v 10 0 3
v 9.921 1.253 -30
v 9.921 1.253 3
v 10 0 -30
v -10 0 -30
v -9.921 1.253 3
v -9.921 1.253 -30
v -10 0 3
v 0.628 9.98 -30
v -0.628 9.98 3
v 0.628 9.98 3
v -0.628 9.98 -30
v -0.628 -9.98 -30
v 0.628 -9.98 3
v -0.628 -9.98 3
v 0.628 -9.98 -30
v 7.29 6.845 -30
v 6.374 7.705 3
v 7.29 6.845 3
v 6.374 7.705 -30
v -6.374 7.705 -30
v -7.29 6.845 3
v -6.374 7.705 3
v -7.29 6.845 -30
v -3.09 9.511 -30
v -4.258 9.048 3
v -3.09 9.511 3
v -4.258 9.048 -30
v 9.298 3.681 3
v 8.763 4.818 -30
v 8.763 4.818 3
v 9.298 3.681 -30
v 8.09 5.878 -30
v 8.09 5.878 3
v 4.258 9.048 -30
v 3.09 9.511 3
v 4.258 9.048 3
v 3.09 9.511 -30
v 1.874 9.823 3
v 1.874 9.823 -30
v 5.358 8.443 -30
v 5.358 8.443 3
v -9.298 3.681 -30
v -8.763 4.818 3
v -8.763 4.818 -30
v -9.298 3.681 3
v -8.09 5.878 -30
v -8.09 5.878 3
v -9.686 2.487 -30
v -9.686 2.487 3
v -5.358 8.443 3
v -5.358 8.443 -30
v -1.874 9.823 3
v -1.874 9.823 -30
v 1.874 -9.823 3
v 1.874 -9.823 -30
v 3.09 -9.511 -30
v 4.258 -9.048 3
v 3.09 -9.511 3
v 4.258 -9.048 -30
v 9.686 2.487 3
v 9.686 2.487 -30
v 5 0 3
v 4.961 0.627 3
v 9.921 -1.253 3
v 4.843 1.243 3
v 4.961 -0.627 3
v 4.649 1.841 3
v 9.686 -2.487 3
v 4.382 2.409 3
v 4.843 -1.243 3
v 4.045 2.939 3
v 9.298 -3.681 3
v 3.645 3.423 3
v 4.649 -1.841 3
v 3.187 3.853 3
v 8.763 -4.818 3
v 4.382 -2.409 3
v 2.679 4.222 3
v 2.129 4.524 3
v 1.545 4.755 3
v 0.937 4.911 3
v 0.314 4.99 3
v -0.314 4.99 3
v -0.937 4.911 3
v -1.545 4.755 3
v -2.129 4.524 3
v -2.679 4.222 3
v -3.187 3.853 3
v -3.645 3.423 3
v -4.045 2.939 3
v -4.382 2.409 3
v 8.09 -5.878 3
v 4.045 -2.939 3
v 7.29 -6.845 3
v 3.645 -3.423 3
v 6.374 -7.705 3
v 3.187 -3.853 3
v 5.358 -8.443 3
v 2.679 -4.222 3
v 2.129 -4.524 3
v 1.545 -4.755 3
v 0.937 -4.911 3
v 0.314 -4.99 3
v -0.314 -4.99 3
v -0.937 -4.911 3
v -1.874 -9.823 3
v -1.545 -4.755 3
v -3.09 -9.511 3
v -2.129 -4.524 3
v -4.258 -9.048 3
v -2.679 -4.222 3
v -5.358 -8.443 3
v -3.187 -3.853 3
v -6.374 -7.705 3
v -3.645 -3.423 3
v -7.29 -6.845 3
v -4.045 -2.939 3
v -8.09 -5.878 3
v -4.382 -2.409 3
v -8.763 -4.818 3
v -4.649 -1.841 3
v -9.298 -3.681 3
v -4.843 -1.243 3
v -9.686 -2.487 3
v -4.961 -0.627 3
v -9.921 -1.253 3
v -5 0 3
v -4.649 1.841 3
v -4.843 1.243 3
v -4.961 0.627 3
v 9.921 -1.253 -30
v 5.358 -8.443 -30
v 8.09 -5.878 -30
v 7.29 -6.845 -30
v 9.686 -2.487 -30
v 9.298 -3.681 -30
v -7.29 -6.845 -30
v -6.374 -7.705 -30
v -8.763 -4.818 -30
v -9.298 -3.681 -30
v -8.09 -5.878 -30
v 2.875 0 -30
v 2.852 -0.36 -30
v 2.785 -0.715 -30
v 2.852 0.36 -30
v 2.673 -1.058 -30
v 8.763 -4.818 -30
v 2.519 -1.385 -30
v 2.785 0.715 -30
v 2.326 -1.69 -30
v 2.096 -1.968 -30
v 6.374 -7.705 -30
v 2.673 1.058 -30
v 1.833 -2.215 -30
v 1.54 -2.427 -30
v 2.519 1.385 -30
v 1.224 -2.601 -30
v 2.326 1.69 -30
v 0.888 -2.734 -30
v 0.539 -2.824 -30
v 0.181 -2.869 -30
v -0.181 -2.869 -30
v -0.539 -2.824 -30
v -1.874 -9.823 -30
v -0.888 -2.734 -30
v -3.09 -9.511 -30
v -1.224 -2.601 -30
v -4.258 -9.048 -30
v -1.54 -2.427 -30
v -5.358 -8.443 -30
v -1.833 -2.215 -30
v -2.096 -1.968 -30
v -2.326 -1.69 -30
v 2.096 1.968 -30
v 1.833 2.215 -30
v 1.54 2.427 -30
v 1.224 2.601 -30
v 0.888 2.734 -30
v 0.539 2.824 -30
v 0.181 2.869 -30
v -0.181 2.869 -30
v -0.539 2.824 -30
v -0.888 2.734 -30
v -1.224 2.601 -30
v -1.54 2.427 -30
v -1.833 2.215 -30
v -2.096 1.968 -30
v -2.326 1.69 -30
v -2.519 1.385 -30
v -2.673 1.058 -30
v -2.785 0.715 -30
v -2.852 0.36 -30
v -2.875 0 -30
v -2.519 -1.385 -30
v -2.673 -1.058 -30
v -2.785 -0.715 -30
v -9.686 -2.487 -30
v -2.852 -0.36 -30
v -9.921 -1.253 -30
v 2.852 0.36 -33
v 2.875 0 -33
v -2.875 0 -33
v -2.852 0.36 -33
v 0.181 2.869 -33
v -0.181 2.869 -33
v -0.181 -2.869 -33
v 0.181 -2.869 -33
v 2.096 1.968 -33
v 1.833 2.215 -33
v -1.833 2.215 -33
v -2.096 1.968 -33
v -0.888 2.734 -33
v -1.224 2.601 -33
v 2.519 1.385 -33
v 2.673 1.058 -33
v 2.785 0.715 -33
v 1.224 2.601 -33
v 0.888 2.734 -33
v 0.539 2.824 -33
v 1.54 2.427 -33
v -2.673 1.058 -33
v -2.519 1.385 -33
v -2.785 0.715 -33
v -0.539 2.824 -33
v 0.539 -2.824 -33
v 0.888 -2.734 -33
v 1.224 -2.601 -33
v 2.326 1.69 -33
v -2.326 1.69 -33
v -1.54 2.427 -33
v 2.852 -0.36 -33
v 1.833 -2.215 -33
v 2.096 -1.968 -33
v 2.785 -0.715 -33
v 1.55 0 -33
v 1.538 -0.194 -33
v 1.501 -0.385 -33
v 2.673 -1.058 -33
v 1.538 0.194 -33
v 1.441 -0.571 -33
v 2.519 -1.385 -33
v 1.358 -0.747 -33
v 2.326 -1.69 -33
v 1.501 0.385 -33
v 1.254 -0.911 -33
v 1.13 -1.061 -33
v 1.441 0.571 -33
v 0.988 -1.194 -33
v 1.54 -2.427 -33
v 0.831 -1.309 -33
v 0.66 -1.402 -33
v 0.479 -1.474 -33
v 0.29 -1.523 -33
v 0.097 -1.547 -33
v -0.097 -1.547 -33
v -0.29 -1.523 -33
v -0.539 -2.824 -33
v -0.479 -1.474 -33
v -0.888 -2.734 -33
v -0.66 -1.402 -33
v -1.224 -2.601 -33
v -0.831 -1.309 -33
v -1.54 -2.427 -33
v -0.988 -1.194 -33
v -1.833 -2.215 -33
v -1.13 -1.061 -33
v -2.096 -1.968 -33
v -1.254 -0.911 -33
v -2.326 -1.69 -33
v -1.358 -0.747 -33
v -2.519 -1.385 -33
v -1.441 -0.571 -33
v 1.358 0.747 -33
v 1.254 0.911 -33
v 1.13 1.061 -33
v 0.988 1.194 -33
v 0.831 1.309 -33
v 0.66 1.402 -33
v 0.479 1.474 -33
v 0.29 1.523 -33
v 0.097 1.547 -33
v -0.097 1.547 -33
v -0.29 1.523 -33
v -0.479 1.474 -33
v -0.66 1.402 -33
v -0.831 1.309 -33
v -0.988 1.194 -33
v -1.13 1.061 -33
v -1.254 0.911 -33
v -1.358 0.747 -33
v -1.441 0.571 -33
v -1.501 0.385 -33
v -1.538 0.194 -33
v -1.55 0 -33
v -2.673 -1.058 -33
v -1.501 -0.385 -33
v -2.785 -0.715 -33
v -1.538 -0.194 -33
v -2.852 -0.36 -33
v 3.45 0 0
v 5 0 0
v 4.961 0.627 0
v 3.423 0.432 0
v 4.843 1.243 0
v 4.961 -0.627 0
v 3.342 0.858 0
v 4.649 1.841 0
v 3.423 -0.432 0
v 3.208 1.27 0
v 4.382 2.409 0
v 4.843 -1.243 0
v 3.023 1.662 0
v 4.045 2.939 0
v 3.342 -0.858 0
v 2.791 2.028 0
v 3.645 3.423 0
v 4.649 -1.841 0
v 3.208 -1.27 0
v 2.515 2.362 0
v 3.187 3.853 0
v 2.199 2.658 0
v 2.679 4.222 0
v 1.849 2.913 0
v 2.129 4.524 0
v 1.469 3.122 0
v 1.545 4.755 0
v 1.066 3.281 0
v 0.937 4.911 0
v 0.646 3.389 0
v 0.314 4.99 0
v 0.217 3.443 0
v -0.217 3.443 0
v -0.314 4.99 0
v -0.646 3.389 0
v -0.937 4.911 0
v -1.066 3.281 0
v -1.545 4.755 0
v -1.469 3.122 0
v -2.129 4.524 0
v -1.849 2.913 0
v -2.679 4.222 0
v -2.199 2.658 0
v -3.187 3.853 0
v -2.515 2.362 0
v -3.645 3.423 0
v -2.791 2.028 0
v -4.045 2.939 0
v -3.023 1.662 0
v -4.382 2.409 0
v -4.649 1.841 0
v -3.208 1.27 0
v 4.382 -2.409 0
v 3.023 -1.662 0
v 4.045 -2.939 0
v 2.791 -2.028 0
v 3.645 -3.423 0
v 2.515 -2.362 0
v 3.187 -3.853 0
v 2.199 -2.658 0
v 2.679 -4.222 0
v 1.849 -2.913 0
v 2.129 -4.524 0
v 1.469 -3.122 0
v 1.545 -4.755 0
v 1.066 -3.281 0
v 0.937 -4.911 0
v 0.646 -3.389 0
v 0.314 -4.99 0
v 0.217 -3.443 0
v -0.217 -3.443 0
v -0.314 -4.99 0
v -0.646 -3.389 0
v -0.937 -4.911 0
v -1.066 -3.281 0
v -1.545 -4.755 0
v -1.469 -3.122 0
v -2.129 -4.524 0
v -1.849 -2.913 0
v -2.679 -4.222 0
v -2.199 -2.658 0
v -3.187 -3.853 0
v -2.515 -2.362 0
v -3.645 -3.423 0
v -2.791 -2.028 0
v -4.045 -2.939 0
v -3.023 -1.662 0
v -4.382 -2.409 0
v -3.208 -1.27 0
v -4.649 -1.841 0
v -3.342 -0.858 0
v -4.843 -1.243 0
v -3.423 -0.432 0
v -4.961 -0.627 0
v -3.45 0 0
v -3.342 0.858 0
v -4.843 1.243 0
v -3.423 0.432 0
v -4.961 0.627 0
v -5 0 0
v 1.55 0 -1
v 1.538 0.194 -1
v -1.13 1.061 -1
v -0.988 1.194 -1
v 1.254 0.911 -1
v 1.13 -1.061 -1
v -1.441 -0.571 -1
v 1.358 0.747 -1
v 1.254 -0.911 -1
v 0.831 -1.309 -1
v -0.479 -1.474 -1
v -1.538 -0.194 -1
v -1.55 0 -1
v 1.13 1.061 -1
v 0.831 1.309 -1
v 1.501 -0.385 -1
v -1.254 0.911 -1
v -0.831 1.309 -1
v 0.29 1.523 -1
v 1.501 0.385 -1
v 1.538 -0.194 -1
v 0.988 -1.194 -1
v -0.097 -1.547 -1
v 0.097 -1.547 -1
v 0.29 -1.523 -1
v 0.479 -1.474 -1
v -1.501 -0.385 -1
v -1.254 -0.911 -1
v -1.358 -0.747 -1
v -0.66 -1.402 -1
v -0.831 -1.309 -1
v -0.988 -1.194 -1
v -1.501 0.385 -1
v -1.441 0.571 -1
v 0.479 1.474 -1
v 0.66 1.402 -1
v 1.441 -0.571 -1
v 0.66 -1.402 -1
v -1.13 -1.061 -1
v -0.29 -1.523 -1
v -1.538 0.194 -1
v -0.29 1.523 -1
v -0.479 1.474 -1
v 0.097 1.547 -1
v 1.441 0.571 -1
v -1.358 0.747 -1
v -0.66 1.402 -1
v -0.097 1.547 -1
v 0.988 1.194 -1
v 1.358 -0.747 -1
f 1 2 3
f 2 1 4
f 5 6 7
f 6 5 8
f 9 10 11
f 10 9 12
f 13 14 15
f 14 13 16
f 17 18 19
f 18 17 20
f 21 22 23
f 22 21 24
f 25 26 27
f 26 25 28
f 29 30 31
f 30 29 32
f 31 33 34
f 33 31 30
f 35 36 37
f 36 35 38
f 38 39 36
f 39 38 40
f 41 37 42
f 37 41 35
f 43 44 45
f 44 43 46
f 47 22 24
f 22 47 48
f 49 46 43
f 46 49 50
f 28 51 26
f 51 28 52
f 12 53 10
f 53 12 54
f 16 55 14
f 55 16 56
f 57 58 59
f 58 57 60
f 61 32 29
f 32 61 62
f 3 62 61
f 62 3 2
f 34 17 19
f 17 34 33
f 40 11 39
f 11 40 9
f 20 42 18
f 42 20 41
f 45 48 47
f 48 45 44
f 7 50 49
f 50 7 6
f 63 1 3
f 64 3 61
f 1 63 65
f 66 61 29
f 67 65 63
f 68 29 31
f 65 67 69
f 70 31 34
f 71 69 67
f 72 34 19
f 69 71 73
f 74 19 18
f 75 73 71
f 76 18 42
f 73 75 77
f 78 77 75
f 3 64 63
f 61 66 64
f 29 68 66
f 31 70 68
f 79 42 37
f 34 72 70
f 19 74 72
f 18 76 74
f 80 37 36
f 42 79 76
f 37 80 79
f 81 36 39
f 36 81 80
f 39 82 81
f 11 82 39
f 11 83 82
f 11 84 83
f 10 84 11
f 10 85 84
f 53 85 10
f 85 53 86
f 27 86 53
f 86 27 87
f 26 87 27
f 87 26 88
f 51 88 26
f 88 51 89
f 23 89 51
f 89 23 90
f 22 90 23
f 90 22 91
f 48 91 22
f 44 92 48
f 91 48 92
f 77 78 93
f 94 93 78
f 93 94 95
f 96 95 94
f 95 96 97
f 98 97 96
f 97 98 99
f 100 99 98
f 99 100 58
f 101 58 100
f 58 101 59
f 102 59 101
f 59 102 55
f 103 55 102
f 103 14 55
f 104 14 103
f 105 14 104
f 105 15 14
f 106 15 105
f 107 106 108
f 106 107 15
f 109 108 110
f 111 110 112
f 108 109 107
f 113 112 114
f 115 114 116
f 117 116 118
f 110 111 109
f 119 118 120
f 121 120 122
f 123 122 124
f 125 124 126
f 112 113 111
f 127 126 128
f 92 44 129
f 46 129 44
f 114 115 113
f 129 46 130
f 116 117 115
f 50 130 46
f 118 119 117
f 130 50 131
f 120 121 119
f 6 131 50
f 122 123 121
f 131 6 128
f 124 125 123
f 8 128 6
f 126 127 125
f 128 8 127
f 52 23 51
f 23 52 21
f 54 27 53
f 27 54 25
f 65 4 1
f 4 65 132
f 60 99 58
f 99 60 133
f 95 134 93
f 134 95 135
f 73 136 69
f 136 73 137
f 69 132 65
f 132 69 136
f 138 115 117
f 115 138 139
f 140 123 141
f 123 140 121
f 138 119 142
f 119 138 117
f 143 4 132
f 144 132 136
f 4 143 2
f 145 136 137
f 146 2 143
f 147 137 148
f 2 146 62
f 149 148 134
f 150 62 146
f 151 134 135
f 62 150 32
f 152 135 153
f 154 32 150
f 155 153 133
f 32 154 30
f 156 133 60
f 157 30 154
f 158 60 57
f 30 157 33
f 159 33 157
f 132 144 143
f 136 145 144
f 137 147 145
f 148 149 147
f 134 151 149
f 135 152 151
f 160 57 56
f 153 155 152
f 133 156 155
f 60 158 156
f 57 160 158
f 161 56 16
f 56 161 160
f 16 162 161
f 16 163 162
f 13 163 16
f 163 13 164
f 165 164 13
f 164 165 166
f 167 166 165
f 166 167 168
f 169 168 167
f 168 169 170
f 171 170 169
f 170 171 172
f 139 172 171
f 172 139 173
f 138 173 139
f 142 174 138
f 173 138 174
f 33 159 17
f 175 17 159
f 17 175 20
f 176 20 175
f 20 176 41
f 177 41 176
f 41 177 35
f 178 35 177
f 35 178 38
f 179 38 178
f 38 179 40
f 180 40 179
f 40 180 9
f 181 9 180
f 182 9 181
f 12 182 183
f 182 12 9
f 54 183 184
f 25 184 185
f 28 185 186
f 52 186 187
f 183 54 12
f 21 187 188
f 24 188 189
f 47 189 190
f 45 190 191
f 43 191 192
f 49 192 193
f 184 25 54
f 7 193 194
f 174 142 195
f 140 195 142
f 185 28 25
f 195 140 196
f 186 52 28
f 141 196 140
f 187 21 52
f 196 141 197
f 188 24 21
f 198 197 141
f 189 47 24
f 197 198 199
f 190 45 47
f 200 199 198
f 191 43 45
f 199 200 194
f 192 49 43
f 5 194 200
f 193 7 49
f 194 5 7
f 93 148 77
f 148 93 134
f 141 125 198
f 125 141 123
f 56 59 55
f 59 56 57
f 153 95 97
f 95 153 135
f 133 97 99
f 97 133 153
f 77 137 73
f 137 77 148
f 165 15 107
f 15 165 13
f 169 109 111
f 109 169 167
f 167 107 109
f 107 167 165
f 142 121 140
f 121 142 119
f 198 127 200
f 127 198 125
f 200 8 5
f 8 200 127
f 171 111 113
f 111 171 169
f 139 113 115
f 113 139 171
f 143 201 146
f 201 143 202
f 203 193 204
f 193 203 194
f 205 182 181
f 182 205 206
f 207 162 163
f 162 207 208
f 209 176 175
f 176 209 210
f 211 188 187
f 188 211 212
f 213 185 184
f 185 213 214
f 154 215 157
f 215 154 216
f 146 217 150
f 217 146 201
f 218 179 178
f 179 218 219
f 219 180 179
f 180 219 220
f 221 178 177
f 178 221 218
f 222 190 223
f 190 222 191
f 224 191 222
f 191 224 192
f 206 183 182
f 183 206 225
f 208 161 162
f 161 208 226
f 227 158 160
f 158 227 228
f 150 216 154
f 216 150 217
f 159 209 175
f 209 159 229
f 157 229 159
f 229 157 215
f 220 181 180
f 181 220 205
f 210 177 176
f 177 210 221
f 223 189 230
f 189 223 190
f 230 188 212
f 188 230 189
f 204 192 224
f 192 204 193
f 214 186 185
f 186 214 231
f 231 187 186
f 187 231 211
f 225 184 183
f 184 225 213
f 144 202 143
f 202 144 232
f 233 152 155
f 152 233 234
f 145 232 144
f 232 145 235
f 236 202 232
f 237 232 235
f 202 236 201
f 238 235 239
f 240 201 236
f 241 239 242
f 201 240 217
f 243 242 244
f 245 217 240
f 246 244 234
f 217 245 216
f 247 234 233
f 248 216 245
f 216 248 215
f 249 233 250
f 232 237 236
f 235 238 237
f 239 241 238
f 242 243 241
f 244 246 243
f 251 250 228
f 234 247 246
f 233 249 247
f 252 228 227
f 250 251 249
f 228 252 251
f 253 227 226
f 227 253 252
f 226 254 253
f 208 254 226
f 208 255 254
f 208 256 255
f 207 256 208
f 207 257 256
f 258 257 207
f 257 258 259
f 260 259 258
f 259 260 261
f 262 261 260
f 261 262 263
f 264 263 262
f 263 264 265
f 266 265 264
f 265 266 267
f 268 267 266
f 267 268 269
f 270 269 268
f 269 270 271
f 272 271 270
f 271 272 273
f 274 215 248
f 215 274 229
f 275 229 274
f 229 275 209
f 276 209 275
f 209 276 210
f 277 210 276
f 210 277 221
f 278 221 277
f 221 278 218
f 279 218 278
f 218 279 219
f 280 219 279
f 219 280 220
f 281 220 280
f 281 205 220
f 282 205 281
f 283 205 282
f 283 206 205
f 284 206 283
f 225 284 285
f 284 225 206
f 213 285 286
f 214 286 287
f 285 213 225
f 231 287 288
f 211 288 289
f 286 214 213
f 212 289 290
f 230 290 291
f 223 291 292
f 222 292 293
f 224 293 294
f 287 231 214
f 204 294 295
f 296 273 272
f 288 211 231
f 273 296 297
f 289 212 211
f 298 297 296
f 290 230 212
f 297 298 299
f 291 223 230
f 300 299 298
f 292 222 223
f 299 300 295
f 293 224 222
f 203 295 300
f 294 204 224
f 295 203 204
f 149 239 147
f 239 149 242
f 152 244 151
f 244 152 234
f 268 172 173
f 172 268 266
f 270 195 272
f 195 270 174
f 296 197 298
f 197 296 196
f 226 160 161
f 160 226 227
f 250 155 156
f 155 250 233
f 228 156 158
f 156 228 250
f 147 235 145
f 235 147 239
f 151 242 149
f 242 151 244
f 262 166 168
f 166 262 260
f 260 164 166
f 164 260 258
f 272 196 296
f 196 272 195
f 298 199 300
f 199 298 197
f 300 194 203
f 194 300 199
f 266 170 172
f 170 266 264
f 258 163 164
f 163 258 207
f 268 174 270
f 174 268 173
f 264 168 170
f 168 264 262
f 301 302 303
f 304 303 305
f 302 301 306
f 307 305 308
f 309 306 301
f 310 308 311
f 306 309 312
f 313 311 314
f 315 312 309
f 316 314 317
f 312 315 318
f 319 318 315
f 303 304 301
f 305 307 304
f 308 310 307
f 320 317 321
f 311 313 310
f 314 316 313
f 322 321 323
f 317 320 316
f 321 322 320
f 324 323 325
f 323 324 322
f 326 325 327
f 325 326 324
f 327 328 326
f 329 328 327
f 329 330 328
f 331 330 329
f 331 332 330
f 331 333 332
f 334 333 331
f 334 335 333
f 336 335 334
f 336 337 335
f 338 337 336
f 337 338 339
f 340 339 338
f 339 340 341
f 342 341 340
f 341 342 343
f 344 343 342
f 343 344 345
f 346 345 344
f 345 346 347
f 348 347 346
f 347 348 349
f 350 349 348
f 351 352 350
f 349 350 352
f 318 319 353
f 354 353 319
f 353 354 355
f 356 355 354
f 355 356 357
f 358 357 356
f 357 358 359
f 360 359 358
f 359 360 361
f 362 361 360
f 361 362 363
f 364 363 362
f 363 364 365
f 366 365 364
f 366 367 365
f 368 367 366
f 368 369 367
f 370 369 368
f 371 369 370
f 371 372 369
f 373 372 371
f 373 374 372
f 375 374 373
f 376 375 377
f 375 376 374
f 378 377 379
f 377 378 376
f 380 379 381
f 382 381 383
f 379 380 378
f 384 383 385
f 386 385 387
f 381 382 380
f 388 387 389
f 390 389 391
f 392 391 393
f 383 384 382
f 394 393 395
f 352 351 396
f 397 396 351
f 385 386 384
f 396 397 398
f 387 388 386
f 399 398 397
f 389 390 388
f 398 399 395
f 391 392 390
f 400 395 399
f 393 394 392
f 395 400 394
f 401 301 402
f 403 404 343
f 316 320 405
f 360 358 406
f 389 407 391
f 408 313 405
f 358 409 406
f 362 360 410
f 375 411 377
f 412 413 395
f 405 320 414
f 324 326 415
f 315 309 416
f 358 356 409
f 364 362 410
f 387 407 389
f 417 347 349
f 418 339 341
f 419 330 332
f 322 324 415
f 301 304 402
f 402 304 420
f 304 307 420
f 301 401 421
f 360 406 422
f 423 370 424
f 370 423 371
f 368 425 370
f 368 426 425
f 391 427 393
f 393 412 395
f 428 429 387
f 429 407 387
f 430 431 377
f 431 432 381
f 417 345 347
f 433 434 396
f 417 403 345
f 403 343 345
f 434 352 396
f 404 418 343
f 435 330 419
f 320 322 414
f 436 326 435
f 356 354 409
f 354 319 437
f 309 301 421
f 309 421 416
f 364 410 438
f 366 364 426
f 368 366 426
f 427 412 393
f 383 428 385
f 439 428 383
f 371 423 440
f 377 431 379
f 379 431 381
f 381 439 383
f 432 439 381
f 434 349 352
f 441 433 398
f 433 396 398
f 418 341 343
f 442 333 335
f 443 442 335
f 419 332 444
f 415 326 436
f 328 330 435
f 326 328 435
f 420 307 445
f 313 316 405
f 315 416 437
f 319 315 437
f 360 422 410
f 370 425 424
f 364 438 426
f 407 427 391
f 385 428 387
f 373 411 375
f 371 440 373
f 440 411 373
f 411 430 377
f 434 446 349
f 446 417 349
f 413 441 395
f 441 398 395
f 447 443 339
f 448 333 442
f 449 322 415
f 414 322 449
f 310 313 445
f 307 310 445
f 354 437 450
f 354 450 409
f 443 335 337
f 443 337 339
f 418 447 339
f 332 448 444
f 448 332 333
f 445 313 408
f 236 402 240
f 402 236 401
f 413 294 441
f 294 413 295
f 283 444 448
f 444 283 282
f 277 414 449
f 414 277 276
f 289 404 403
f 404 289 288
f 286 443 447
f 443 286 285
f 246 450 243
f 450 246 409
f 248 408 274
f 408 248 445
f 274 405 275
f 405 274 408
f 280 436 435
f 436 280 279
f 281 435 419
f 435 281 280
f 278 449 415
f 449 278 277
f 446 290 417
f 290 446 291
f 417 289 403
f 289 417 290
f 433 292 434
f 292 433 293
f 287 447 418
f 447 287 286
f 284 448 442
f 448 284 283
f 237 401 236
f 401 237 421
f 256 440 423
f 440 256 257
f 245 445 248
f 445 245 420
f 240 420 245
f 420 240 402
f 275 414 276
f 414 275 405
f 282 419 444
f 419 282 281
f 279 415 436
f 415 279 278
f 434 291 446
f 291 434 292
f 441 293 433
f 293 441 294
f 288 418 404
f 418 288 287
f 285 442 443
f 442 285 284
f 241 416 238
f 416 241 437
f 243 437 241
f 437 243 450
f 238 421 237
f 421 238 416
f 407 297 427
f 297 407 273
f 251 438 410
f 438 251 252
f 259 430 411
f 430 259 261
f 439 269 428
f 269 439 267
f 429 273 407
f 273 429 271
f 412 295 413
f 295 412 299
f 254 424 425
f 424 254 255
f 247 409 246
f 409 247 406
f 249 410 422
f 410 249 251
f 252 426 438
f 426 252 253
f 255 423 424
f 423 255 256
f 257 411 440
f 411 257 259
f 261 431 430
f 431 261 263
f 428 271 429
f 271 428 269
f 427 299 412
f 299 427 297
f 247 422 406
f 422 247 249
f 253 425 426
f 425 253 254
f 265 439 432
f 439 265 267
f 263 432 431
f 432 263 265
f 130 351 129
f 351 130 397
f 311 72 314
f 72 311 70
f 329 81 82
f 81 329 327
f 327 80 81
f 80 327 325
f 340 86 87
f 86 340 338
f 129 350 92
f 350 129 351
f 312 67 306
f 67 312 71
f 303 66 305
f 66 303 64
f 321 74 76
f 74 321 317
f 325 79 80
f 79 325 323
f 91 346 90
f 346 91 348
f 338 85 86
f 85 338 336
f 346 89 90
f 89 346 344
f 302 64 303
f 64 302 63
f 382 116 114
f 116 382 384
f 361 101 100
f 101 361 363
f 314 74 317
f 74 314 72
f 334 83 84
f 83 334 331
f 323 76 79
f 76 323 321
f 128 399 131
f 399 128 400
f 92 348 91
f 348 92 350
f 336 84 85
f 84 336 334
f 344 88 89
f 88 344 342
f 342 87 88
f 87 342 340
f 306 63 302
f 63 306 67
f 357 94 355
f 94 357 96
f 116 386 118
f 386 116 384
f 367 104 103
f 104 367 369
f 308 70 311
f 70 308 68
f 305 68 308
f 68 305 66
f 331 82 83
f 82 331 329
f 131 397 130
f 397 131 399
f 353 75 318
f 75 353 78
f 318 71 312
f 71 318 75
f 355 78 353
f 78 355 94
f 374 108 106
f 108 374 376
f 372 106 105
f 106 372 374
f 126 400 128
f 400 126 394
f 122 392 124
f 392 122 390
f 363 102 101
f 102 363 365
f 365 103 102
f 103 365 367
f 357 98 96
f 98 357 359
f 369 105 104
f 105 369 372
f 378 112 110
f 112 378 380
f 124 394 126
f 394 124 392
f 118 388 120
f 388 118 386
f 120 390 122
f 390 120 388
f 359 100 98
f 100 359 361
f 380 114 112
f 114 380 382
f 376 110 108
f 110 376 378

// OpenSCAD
$fn = 50;

difference() {
	union() {
		translate(v = [0, 0, -30.0]) {
			cylinder(h = 33, r = 10.0);
		}
		#translate(v = [0, 0, -33.0]) {
			cylinder(h = 33, r = 2.875);
		}
	}
	union() {
		translate(v = [0, 0, 0]) {
			rotate(a = [0, 0, 0]) {
				difference() {
					union() {
						translate(v = [0, 0, -33.0]) {
							cylinder(h = 33, r = 1.25);
						}
						translate(v = [0, 0, -1.0]) {
							cylinder(h = 1.0, r1 = 1.55, r2 = 3.45);
						}
						translate(v = [0, 0, -33.0]) {
							cylinder(h = 33, r = 1.55);
						}
						translate(v = [0, 0, -33.0]) {
							cylinder(h = 33, r = 1.25);
						}
					}
					union();
				}
			}
		}
		#cylinder(h = 3, r = 5.0);
	}
}
